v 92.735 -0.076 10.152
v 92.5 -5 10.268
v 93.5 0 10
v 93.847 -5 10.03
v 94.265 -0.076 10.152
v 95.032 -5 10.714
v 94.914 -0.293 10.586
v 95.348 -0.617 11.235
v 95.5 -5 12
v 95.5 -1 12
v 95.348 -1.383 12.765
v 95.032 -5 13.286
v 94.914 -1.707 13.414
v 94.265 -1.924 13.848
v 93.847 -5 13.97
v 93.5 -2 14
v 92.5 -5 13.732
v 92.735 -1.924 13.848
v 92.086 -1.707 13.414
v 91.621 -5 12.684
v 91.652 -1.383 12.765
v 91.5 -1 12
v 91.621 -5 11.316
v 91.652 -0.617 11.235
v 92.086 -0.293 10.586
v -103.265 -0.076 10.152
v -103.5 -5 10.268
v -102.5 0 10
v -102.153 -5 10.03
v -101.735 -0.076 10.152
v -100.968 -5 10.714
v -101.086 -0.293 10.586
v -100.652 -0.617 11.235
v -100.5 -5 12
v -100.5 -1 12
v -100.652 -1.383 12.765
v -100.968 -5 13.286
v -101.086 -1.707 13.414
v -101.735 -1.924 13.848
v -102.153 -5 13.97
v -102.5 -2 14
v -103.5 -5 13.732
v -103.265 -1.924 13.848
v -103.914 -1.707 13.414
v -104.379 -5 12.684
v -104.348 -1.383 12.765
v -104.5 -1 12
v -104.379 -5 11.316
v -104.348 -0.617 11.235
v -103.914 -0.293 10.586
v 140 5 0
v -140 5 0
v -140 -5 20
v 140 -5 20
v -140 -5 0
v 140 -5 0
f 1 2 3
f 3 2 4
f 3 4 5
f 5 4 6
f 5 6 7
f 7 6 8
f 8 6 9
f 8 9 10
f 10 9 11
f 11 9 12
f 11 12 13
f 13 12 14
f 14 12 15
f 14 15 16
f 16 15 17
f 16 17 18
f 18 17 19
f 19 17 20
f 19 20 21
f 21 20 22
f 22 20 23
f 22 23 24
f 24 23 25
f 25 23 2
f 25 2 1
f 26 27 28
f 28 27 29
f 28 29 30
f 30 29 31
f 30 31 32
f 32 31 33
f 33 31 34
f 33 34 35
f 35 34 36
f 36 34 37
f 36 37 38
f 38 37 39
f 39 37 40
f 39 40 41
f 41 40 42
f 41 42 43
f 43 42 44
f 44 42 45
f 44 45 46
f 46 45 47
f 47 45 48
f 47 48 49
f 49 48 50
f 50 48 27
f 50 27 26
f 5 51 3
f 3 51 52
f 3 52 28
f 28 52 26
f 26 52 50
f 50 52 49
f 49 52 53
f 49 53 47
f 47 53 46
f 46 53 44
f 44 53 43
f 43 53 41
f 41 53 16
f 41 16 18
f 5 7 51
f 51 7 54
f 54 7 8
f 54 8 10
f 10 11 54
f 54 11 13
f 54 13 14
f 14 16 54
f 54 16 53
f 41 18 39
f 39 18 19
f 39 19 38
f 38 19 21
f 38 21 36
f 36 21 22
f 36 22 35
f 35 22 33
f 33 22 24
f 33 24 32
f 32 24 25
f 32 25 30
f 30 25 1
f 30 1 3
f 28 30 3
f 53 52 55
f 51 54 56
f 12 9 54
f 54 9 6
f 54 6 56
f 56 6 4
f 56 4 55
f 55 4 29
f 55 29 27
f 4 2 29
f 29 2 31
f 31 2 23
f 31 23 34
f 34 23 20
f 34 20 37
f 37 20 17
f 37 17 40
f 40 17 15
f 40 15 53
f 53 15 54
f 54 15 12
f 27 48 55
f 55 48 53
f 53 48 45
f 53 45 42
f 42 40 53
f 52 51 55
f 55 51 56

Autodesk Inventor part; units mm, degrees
ref_plane "YZ Plane" through (0, 0, 0) normal (1, 0, 0) x (0, 1, 0)
ref_plane "XZ Plane" through (0, 0, 0) normal (0, 1, 0) x (-1, 0, 0)
ref_plane "XY Plane" through (0, 0, 0) normal (0, 0, 1) x (1, 0, 0)
sketch "Sketch1" plane through (0, 0, 0) normal (0, 0, 1) x (1, 0, 0)
  line L0 (140, 5) -> (-140, 5)
  line L1 (-140, 5) -> (-140, -5)
  line L2 (-140, -5) -> (140, -5)
  line L3 (140, -5) -> (140, 5)
  line L4 (140, 5) -> (-140, -5) construction
  line L5 (-140, 5) -> (140, -5) construction
  point P0 (0, 0)
  dimension "d0" = 280
  dimension "d1" = 10
extrude "Extrusion1" add sketch "Sketch1" along normal blind 20
sketch "Sketch3" plane through (-140, -5, 0) normal (-1, 0, 0) x (0, 0, 1)
  line L0 (0, 10) -> (0, 0) projected
  line L1 (20, 10) -> (20, 0) projected
  line L2 (0, 10) -> (20, 0)
  line L3 (20, 0) -> (20, 10)
  line L4 (0, 10) -> (20, 10) projected
  line L5 (20, 10) -> (0, 10)
  point P0 (0, 5)
extrude "Extrusion3" cut sketch "Sketch3" against normal through all
sketch "Sketch5" plane through (-140, -5, 0) normal (0, -1, 0) x (1, 0, 0)
  circle A0 centre (37.5, 12) radius 2
  circle A1 centre (233.5, 12) radius 2
  line L0 (0, 20) -> (280, 20) projected
  line L1 (0, 0) -> (0, 20) projected
  point P0 (140, 0)
  dimension "d8" = 4
  dimension "d9" = 4
  dimension "d10" = 196
  dimension "d11" = 8
  dimension "d12" = 8
  dimension "d13" = 37.5
hole "Hole1" at (93.5, -5, 12) at (-102.5, -5, 12) direction (0, 1, 0) diameter 4 depth 5 tip angle 118
properties part number "paw shelf_v01"
